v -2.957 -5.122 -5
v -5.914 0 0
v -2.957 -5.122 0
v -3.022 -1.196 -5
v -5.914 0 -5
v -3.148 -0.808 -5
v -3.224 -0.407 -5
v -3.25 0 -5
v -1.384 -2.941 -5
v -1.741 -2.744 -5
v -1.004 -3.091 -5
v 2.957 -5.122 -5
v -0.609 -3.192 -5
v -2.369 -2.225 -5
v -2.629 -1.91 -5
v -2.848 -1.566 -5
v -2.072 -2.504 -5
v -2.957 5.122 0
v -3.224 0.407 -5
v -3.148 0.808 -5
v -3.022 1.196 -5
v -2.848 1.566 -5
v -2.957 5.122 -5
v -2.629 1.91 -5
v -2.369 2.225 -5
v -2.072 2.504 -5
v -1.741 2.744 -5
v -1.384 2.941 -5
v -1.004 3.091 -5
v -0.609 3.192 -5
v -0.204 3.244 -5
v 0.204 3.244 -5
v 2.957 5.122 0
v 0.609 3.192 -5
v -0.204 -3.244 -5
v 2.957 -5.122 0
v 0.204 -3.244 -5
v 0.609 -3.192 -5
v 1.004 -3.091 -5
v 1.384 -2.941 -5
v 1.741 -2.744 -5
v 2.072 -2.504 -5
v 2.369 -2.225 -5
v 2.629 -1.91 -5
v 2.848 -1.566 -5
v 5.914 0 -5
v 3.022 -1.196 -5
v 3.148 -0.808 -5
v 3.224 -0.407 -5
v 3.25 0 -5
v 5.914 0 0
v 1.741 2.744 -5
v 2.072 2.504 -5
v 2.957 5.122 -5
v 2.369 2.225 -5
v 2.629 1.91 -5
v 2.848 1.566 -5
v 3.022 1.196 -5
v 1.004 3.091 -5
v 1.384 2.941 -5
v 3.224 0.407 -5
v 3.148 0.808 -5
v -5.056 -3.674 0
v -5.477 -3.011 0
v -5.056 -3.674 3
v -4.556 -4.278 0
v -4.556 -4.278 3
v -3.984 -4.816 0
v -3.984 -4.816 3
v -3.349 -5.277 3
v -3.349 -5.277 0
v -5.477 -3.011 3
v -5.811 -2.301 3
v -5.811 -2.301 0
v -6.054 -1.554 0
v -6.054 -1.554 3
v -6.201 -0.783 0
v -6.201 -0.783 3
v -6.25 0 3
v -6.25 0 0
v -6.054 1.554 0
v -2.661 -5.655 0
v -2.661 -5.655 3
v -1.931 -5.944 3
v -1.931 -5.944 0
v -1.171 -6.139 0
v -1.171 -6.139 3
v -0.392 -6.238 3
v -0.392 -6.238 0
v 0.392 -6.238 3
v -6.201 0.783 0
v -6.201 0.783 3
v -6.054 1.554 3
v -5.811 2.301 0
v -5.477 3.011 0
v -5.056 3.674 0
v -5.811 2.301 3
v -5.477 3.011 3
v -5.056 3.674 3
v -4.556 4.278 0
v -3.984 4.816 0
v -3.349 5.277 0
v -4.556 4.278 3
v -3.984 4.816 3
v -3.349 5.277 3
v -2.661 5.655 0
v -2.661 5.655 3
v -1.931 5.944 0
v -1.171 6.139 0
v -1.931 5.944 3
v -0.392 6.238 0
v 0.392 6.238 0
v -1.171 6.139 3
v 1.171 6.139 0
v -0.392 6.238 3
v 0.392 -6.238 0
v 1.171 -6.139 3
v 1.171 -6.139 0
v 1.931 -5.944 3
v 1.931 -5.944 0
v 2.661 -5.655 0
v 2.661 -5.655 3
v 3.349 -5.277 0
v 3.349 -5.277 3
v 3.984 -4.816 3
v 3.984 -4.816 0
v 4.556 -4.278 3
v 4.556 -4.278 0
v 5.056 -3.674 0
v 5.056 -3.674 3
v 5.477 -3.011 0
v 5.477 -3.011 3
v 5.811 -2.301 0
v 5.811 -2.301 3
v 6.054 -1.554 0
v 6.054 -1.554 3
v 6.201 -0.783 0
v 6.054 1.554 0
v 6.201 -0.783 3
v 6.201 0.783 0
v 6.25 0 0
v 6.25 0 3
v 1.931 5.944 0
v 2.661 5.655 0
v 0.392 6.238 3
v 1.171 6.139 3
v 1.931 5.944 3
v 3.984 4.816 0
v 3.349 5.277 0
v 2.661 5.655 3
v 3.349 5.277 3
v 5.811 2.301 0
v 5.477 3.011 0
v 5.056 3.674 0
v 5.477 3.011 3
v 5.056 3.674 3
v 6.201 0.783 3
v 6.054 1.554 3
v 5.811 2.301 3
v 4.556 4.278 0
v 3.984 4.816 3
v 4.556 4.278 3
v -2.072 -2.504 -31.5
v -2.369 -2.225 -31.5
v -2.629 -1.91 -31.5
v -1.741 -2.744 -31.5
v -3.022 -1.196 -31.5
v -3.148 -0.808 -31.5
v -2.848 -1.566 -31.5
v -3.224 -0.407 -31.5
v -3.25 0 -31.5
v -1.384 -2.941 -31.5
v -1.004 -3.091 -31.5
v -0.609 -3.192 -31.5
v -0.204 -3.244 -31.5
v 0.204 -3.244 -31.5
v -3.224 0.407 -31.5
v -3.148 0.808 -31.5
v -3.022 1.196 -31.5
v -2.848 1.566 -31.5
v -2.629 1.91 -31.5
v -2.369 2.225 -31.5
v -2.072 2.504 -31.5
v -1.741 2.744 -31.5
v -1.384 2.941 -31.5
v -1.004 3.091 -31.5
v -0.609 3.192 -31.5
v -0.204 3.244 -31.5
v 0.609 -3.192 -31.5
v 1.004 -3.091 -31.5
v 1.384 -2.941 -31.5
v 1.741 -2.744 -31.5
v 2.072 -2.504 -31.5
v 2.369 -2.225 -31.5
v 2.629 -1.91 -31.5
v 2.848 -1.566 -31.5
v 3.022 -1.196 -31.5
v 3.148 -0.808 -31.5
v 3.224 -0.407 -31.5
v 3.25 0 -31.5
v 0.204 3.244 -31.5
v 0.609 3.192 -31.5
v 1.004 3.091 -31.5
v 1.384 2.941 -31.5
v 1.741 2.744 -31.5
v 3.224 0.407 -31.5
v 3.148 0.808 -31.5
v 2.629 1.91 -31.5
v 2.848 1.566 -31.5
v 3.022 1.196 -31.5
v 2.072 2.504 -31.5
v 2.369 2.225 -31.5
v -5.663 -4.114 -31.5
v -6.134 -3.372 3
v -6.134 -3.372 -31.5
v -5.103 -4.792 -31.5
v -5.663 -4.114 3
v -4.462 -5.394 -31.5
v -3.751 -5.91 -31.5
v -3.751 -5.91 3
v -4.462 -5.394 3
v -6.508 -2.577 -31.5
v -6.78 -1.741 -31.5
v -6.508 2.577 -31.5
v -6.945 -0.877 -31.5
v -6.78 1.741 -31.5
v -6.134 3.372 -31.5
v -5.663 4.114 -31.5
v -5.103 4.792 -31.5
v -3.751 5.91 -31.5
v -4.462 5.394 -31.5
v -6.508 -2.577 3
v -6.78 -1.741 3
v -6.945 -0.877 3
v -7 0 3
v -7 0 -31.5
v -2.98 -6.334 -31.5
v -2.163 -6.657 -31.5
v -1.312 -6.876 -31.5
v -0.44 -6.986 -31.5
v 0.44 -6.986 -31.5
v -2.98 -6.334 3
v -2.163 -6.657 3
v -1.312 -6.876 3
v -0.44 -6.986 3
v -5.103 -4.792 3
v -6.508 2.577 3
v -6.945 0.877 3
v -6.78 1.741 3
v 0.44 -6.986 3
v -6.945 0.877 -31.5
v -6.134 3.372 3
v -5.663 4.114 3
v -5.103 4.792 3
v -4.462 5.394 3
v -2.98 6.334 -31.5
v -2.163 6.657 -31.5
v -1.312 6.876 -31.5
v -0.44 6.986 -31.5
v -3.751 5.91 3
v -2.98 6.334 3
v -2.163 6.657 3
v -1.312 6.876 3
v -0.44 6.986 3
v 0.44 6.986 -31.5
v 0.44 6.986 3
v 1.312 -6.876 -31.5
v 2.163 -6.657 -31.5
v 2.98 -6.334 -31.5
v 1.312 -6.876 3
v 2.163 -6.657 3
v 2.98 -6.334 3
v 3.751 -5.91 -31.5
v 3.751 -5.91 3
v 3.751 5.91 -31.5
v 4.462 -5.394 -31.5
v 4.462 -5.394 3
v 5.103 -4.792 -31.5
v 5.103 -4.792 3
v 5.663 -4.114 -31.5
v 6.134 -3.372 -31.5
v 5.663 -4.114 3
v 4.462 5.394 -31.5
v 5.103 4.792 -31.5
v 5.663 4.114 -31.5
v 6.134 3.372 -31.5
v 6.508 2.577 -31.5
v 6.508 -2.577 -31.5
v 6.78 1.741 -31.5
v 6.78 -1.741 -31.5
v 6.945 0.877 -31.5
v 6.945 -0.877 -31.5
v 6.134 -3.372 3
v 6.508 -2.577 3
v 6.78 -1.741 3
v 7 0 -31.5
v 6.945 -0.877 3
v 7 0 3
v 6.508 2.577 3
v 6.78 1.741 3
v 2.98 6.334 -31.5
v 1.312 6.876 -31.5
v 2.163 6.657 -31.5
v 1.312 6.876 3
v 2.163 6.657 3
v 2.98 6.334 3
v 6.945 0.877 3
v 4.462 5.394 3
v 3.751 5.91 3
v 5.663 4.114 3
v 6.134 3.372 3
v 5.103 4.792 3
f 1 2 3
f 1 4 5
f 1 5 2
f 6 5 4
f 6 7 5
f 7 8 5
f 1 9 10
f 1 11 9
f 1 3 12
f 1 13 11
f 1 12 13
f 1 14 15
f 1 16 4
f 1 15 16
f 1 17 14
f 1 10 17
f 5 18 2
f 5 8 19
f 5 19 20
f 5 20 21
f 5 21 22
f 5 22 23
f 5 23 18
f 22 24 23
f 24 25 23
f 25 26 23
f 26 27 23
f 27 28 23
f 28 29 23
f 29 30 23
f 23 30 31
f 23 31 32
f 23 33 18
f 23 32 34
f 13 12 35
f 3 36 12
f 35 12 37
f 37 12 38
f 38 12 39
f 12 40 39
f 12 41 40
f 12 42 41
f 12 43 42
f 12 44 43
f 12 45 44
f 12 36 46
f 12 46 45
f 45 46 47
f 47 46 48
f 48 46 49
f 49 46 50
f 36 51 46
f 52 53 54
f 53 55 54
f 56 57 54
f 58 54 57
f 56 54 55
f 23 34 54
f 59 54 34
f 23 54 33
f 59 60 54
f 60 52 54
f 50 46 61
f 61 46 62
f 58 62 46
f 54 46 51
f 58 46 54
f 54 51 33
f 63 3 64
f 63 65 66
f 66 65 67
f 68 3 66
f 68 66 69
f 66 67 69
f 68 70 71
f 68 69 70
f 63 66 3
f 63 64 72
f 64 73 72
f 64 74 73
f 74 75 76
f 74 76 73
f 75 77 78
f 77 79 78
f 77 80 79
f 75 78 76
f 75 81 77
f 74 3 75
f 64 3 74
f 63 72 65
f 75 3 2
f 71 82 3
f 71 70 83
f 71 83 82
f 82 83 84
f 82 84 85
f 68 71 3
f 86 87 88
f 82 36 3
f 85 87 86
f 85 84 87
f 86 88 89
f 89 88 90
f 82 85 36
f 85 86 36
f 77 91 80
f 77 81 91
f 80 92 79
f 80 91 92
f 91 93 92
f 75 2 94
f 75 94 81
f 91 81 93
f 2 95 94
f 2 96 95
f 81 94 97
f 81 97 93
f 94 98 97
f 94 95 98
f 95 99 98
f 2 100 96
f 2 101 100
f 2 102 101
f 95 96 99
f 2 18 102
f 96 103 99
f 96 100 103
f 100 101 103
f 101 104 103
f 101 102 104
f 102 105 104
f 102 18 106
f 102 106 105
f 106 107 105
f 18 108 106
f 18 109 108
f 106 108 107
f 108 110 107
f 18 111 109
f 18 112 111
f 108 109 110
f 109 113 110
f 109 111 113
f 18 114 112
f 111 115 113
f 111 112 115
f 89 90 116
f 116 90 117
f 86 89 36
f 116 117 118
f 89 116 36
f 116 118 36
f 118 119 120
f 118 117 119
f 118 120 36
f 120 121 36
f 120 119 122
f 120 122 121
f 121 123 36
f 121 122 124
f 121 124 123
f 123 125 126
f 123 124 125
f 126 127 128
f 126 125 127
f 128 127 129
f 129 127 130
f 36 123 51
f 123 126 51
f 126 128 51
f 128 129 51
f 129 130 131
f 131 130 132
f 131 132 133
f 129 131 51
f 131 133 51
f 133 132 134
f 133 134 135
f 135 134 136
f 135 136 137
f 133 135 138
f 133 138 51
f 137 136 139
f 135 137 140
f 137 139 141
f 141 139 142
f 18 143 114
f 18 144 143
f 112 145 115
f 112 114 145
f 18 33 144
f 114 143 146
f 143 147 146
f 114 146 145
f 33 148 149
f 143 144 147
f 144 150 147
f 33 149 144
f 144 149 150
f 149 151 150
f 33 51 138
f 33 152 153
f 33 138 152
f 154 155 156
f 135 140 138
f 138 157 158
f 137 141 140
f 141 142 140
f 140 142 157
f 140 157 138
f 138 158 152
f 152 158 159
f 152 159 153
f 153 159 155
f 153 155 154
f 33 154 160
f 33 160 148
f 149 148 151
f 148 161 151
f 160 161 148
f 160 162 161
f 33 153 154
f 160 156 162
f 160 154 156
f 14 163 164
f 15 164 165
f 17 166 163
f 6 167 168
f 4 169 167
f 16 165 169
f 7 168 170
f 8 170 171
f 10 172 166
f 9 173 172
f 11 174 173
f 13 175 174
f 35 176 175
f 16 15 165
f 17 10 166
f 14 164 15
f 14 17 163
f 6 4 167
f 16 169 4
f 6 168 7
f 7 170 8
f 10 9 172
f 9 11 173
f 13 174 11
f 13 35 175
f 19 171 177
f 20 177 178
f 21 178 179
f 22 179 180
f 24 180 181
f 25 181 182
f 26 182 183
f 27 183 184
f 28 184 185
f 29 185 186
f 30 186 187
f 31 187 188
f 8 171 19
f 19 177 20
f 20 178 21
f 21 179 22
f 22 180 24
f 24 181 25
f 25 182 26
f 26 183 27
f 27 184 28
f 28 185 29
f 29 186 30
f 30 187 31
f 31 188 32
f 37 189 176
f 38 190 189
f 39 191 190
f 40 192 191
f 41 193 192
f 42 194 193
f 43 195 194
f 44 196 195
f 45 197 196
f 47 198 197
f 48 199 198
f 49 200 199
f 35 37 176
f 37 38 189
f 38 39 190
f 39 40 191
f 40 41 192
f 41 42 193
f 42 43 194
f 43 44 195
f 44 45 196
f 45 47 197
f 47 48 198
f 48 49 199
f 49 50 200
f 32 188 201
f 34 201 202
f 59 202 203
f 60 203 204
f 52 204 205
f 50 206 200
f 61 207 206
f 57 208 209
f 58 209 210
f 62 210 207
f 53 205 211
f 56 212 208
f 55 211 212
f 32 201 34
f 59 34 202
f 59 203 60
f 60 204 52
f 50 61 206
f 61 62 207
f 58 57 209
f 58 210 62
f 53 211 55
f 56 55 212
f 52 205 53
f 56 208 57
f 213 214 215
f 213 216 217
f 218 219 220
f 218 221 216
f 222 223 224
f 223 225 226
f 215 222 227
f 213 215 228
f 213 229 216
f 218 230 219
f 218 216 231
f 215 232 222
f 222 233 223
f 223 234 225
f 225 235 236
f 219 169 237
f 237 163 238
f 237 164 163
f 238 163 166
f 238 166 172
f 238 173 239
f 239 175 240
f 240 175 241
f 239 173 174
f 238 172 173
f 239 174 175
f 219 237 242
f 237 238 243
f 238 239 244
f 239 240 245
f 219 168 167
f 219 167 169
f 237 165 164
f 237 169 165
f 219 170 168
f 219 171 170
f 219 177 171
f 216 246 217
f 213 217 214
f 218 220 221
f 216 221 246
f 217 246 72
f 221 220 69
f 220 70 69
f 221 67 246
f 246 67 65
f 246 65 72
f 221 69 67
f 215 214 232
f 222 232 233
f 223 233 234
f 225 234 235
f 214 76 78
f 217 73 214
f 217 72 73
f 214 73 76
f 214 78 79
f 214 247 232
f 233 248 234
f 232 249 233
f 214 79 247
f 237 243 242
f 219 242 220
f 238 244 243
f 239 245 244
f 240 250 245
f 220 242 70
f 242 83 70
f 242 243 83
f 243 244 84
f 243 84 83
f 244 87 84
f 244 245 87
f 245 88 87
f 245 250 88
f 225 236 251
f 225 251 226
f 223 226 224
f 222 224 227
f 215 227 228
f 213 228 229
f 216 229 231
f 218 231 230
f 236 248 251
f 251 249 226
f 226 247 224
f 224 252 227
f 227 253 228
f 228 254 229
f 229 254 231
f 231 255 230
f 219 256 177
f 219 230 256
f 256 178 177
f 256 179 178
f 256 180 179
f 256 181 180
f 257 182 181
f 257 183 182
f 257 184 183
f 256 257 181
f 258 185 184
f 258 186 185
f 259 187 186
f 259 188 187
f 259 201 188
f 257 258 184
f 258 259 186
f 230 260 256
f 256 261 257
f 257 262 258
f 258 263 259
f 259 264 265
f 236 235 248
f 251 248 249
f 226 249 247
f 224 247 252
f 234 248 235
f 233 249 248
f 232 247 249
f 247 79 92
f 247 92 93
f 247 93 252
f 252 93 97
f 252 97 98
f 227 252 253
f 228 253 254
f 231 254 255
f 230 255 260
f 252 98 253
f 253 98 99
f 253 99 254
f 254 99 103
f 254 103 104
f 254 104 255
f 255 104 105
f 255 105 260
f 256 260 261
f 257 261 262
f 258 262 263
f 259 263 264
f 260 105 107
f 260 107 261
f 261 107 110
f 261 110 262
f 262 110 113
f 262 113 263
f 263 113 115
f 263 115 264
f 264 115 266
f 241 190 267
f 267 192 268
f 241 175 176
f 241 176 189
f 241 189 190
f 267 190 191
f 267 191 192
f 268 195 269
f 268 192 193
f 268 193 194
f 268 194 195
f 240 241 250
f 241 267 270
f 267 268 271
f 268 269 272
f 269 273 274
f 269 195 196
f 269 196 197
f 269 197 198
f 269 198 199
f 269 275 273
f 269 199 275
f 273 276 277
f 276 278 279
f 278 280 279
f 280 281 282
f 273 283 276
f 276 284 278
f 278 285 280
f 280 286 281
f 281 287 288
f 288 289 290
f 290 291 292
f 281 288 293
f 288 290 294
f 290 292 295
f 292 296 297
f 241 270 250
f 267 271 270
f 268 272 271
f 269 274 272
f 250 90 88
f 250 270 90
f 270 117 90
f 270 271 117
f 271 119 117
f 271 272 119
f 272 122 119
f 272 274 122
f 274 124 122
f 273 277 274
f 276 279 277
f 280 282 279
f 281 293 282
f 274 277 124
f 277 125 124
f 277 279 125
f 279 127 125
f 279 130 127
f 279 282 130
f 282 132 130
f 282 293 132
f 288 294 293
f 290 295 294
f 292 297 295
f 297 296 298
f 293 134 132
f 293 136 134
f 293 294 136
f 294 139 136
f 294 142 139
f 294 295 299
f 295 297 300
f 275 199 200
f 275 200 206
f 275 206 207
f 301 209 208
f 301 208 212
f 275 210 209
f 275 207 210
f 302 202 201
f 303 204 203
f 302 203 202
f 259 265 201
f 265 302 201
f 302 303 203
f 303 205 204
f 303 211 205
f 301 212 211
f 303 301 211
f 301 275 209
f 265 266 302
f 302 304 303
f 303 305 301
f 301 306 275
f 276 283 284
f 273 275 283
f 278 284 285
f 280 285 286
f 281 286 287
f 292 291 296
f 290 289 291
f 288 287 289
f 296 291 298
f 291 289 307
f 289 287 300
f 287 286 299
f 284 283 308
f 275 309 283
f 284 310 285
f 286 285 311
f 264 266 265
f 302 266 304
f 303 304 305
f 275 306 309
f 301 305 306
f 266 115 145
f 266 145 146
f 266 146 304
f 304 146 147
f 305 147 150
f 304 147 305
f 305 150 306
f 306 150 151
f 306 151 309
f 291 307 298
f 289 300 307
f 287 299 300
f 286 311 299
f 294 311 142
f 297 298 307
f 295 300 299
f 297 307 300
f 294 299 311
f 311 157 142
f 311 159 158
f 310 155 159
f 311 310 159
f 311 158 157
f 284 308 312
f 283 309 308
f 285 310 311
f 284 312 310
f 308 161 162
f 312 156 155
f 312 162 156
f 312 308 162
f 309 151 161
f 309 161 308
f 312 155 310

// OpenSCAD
$fn = 50;


difference() {
	union() {
		translate(v = [0, 0, -31.5000000000]) {
			cylinder(h = 34.5000000000, r = 7.0000000000);
		}
	}
	union() {
		translate(v = [0, 0, 0]) {
			rotate(a = [0, 0, 0]) {
				difference() {
					union() {
						translate(v = [0, 0, -5]) {
							linear_extrude(height = 5) {
								polygon(points = [[5.9142500000, 0.0000000000], [2.9571250000, 5.1218907443], [-2.9571250000, 5.1218907443], [-5.9142500000, 0.0000000000], [-2.9571250000, -5.1218907443], [2.9571250000, -5.1218907443]]);
							}
						}
					}
					union();
				}
			}
		}
		#cylinder(h = 3, r = 6.2500000000);
		#translate(v = [0, 0, -100.0000000000]) {
			cylinder(h = 200, r = 3.2500000000);
		}
	}
}
